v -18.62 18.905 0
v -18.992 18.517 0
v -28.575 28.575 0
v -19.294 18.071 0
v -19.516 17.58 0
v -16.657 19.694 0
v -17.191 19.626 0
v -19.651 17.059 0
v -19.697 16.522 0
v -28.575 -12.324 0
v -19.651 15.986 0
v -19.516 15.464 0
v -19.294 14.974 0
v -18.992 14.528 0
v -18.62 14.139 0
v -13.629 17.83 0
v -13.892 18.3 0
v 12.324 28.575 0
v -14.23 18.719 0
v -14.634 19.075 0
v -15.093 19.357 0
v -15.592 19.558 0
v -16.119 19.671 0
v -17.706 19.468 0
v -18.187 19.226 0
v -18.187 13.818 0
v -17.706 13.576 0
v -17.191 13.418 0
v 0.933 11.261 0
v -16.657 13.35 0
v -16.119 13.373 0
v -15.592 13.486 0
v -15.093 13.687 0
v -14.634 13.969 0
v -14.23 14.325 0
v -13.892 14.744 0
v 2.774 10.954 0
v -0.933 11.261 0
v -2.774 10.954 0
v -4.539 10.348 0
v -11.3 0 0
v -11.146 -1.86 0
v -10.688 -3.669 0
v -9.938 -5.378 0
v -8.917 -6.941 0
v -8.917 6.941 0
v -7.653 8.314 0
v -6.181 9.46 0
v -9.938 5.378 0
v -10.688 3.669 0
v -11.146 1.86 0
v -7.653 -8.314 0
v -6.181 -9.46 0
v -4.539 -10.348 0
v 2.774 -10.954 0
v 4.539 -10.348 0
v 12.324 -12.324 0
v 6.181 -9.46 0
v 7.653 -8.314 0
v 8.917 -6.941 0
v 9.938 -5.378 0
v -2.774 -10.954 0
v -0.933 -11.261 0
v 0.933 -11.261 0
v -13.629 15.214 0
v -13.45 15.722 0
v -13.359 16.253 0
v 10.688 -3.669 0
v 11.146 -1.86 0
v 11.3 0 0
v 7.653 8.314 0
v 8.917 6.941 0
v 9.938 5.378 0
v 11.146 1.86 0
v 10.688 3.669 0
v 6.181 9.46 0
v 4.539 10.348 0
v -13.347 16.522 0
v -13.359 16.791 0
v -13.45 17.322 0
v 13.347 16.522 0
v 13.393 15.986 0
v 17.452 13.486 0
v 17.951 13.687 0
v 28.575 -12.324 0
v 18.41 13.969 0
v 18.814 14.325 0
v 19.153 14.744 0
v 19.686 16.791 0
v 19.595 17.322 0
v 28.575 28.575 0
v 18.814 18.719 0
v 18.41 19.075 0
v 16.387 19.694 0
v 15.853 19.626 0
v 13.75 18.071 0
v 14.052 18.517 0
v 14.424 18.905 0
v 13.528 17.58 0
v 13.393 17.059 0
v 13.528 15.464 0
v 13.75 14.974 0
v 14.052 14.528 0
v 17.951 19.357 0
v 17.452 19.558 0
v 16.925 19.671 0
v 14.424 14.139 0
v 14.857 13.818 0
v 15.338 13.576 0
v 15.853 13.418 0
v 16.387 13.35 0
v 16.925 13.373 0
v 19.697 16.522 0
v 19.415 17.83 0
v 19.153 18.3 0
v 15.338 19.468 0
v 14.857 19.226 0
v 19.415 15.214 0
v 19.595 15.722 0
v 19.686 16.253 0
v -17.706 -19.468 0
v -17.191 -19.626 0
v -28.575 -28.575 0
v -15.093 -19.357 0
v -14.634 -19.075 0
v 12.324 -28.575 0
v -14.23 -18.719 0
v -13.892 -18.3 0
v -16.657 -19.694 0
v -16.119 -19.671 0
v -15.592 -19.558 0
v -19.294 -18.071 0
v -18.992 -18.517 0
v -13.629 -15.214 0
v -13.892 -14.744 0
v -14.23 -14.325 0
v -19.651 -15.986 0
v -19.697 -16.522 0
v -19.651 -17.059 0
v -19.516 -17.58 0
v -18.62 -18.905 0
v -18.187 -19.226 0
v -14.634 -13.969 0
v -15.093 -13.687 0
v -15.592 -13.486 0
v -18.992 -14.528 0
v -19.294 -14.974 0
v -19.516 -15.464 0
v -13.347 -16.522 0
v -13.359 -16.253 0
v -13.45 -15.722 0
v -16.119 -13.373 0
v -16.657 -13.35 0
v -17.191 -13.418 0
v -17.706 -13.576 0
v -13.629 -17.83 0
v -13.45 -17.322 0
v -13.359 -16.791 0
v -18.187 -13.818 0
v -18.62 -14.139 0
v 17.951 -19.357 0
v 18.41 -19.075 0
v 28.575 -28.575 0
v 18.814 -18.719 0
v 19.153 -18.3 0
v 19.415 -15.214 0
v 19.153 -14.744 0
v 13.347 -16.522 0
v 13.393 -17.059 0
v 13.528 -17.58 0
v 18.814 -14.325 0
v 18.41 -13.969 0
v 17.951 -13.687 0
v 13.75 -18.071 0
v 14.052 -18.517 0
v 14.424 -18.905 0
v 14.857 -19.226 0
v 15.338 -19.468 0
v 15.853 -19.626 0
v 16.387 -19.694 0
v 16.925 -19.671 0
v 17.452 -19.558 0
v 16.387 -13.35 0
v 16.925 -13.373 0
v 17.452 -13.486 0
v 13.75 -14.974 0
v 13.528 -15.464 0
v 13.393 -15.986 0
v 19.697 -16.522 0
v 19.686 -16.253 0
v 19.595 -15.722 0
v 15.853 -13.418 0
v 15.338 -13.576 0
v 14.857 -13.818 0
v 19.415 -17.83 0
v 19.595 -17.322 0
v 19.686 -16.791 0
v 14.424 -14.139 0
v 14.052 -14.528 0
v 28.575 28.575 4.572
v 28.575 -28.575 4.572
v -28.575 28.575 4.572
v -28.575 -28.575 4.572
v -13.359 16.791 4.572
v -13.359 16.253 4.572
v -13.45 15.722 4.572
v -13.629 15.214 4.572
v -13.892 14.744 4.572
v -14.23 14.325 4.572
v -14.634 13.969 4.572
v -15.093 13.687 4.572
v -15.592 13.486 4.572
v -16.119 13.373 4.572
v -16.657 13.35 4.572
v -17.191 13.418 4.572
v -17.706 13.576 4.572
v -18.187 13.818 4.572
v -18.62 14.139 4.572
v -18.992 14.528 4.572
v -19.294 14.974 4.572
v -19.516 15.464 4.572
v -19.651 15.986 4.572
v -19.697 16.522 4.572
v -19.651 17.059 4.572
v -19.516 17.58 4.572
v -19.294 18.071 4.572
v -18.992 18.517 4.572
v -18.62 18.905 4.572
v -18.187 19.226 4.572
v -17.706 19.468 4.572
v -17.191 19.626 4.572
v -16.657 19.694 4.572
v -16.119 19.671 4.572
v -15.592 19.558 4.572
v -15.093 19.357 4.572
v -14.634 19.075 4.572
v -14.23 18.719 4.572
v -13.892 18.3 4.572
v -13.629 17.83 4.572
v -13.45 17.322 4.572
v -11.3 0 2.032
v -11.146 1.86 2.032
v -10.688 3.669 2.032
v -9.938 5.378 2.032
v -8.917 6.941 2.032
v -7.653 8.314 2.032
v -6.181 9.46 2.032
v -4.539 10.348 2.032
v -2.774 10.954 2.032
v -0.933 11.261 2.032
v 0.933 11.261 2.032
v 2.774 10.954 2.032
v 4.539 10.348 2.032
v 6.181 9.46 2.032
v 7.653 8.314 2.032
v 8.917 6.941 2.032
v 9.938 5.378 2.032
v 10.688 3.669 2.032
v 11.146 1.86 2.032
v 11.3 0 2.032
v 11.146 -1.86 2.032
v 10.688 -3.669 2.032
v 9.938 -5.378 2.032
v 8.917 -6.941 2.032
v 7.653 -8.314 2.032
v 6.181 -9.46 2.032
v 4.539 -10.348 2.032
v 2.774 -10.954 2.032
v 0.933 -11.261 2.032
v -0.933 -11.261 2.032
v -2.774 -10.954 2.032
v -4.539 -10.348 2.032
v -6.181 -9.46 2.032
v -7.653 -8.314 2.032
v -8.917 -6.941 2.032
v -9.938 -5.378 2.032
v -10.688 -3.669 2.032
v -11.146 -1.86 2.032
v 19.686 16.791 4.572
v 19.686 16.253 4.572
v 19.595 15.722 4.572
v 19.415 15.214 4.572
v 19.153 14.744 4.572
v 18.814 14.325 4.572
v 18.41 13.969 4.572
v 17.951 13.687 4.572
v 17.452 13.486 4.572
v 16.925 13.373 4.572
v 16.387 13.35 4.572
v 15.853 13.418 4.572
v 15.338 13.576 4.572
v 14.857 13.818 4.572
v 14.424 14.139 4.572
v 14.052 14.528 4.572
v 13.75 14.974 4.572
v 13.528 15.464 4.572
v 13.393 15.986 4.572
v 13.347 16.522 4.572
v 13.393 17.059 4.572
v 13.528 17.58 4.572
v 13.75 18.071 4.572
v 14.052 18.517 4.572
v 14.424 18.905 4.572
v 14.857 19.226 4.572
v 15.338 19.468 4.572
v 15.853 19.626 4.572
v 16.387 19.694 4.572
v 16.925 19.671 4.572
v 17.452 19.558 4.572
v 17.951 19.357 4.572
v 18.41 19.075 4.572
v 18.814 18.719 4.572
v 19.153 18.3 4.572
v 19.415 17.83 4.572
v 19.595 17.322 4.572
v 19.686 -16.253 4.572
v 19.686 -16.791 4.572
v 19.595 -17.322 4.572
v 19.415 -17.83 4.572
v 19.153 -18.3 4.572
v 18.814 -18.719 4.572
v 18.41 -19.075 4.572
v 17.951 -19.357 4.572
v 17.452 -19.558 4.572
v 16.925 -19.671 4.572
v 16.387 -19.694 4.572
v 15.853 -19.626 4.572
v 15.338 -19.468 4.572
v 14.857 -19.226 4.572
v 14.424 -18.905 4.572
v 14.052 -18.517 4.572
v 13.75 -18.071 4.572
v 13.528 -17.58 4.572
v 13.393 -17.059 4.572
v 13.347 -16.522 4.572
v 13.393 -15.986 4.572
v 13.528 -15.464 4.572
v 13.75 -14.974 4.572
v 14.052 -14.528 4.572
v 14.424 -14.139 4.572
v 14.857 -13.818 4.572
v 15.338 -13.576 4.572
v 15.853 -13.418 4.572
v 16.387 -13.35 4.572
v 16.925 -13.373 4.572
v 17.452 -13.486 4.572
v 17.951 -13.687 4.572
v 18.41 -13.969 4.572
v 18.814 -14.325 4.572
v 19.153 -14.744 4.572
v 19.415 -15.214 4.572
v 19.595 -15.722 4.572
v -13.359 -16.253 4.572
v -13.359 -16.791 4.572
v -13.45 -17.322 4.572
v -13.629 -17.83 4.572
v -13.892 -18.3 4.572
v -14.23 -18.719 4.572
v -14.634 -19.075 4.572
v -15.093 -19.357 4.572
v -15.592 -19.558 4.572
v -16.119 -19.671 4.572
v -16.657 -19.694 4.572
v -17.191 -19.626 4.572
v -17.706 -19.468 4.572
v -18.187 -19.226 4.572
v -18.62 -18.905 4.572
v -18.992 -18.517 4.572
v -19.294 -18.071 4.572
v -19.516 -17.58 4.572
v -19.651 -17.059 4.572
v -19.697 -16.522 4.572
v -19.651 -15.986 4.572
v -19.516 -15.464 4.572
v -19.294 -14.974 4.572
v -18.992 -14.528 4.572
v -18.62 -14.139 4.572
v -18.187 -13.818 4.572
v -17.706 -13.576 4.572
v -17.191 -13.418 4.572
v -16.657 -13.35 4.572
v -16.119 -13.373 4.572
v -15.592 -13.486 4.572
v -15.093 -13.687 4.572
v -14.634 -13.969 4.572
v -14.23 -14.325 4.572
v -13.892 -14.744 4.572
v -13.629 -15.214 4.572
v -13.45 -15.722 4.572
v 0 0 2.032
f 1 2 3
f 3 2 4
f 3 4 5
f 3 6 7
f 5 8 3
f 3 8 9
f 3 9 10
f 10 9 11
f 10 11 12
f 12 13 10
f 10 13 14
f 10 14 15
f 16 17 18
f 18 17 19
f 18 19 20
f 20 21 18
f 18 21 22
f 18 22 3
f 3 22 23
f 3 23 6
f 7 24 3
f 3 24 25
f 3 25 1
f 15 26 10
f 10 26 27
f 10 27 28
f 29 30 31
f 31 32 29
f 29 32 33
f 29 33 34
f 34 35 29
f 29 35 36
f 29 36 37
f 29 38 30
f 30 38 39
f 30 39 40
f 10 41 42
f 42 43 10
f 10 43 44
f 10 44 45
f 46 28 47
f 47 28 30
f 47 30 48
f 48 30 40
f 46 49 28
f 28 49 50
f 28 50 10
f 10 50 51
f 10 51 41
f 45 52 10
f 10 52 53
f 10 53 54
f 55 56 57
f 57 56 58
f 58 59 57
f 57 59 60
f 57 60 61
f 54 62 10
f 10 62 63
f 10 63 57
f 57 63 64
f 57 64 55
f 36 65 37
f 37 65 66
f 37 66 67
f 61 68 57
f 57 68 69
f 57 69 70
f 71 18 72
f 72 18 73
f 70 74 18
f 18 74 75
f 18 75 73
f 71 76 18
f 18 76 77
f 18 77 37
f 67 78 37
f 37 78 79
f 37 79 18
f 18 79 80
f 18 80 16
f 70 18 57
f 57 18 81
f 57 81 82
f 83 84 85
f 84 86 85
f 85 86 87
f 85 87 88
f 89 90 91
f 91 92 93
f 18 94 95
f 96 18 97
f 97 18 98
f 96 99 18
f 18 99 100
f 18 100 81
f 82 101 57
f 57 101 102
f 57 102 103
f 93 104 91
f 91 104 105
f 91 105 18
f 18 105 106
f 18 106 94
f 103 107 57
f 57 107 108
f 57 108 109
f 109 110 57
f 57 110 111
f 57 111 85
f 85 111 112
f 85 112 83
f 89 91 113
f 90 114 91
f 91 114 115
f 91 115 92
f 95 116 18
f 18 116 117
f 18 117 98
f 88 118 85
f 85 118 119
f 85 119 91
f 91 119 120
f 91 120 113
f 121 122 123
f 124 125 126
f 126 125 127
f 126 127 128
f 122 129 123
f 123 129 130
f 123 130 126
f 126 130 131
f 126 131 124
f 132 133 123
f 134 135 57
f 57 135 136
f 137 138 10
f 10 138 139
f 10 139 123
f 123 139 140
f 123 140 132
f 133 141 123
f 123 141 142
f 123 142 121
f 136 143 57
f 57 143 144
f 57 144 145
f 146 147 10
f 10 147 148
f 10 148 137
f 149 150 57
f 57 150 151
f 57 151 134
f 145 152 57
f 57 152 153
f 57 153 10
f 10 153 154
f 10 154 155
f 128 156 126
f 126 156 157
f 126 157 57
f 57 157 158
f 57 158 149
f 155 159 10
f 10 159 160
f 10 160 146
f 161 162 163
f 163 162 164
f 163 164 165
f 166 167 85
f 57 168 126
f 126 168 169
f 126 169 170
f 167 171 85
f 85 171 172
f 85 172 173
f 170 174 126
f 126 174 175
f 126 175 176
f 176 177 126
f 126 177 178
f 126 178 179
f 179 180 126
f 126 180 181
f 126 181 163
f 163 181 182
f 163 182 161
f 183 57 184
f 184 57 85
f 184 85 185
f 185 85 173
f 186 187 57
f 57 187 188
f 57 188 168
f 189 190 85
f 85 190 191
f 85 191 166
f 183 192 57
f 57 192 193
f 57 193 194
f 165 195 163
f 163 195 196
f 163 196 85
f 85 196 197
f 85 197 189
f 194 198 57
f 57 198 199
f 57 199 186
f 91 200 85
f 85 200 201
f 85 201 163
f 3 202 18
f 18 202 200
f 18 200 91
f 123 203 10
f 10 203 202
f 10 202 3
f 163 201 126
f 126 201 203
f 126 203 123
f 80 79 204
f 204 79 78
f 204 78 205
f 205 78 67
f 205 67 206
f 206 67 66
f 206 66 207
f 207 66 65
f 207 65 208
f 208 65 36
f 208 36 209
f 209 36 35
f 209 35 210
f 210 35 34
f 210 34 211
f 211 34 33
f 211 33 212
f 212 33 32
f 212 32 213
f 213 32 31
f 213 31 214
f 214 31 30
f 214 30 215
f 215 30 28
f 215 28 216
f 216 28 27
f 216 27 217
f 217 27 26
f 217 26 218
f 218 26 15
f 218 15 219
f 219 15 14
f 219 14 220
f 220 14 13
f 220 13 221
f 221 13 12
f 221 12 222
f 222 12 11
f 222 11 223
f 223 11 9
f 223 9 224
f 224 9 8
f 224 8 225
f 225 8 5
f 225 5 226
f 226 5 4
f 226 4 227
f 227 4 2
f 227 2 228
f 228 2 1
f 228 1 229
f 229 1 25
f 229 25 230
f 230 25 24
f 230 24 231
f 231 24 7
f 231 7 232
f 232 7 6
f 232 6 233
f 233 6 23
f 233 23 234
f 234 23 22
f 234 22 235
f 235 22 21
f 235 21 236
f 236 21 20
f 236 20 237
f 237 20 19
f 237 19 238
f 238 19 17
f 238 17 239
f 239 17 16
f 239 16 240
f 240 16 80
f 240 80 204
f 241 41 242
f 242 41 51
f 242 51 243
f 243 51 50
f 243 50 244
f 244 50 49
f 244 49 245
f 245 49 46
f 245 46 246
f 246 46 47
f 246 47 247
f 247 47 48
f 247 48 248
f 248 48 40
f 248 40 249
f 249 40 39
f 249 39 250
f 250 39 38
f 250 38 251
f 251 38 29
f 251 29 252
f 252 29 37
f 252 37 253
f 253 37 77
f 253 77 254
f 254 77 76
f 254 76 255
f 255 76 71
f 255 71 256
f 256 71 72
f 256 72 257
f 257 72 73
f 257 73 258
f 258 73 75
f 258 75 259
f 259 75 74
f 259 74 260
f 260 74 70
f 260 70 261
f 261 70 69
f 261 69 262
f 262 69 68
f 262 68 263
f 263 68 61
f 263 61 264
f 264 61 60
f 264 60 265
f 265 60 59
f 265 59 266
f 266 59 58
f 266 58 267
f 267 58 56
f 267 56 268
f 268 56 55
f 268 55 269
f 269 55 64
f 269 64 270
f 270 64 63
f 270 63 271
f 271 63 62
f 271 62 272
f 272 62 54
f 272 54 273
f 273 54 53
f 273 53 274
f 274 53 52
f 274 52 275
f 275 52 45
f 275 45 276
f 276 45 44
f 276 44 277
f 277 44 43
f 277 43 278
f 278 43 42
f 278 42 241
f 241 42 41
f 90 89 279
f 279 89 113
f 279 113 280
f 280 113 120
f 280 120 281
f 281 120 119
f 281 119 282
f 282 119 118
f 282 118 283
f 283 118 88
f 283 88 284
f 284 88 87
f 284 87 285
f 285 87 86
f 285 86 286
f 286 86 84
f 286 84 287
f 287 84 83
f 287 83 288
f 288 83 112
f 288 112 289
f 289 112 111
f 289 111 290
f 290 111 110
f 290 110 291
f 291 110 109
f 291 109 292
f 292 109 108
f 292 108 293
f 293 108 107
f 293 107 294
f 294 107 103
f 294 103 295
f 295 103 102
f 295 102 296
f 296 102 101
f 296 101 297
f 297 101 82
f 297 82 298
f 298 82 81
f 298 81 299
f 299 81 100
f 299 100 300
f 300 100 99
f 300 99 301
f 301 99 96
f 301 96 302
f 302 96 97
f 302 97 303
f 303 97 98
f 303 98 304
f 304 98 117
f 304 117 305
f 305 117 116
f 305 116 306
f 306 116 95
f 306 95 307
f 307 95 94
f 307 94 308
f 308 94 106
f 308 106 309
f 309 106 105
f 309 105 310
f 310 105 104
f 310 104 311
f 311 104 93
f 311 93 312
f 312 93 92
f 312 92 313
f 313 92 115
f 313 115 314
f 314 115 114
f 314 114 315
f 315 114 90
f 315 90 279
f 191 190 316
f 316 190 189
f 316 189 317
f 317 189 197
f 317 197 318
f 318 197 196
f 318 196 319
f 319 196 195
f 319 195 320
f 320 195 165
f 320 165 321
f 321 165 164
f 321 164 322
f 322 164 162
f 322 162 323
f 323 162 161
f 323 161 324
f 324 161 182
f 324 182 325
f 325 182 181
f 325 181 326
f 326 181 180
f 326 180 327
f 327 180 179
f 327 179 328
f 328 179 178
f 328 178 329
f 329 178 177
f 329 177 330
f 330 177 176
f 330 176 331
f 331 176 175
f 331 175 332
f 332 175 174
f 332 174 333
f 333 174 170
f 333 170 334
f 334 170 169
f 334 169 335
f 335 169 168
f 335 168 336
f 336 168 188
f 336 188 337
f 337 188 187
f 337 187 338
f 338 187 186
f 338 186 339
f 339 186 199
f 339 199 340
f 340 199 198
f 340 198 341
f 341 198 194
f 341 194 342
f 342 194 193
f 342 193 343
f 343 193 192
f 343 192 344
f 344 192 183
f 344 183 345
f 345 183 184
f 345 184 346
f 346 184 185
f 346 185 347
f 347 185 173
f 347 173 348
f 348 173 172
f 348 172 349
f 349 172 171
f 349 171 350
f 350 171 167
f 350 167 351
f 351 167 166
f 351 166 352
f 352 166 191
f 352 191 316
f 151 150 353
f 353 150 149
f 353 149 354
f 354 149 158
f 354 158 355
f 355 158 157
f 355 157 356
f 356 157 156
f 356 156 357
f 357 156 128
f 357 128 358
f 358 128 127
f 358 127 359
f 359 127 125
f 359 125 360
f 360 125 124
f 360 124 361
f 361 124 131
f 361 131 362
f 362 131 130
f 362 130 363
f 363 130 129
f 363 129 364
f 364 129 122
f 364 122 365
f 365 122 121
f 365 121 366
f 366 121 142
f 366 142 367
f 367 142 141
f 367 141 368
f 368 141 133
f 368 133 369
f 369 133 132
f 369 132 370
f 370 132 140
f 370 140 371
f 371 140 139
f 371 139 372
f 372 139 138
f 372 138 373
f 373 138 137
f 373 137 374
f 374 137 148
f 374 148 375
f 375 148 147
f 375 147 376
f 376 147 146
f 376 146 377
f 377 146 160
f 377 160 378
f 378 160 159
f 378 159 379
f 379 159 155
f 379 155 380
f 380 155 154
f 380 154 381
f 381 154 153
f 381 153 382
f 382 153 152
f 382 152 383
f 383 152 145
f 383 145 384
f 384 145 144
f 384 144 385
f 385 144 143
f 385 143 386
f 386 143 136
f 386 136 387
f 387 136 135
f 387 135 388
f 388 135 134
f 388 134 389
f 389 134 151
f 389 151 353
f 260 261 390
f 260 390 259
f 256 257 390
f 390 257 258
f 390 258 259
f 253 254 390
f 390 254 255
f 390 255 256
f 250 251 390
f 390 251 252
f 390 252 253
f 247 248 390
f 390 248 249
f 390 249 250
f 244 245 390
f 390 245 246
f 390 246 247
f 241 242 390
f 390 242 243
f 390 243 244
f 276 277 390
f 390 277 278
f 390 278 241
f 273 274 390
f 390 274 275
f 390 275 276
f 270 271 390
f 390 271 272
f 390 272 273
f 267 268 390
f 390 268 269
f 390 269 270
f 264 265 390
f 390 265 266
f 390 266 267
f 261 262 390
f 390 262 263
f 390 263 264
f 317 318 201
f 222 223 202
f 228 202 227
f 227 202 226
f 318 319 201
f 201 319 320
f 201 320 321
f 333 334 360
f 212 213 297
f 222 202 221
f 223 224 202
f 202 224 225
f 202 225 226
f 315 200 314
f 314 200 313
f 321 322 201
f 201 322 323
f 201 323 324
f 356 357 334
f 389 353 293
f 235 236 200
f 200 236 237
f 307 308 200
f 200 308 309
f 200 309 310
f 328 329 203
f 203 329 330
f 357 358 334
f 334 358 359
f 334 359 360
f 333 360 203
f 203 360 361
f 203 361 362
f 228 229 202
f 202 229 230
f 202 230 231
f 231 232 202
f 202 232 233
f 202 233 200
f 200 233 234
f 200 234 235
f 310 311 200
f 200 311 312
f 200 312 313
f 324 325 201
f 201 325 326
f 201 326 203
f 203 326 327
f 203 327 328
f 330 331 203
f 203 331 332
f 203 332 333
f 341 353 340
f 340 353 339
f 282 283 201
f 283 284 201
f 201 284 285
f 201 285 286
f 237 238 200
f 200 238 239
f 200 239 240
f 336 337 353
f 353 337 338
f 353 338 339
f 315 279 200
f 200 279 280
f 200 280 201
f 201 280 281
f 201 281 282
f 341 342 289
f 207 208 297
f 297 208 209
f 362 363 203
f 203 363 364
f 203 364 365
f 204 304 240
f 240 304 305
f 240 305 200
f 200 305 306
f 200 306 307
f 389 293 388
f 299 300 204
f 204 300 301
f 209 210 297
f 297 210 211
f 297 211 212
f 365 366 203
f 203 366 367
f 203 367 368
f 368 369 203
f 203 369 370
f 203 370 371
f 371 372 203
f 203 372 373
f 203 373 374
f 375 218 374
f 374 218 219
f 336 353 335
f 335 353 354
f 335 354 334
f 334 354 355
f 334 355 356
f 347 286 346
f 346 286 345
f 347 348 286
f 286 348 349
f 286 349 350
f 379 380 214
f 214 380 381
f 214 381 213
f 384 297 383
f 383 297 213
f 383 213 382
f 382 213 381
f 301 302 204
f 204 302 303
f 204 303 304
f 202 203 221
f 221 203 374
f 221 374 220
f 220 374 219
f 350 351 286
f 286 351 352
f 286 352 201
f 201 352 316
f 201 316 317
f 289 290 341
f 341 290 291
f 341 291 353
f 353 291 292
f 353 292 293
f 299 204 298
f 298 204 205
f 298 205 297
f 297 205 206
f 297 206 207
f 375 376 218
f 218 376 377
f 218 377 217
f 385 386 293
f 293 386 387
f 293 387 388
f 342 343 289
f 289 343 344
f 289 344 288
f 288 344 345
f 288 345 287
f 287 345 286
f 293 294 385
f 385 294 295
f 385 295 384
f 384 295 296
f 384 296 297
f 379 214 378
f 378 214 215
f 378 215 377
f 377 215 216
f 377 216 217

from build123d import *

# Parameters (mm, degrees)
SKETCH1_W           = 57.15
SKETCH1_H           = 57.15
SKETCH1_R           = 3.175
SKETCH1_R_2         = 11.3
BOSS_EXTRUDE1_DEPTH = 2.032
BOSS_EXTRUDE2_START = 2.032
SKETCH1_2_W         = 57.15
SKETCH1_2_H         = 57.15
SKETCH1_2_R         = 11.3
SKETCH1_2_R_2       = 3.175
BOSS_EXTRUDE2_DEPTH = 2.54


with BuildPart() as part:
    # Sketch1 → Boss-Extrude1 (new body)
    with BuildSketch(Plane.XY):
        Rectangle(SKETCH1_W, SKETCH1_H)
        with Locations((-16.522101848, 16.522101848)):
            Circle(SKETCH1_R, mode=Mode.SUBTRACT)
        with Locations((16.522101848, 16.522101848)):
            Circle(SKETCH1_R, mode=Mode.SUBTRACT)
        with Locations((16.522101848, -16.522101848)):
            Circle(SKETCH1_R, mode=Mode.SUBTRACT)
        with Locations((-16.522101848, -16.522101848)):
            Circle(SKETCH1_R, mode=Mode.SUBTRACT)
        Circle(SKETCH1_R_2, mode=Mode.SUBTRACT)
    extrude(amount=BOSS_EXTRUDE1_DEPTH)

    # Sketch1<2> → Boss-Extrude2 (add)
    # profile 1 of 2: a face of its own
    with BuildSketch(Plane.XY.offset(BOSS_EXTRUDE2_START)):
        Rectangle(SKETCH1_2_W, SKETCH1_2_H)
        Circle(SKETCH1_2_R, mode=Mode.SUBTRACT)
        with Locations(Location((-16.522101848, -16.522101848, 0), (0, 0, 180))):
            Circle(SKETCH1_2_R_2, mode=Mode.SUBTRACT)
        with Locations(Location((16.522101848, -16.522101848, 0), (0, 0, 180))):
            Circle(SKETCH1_2_R_2, mode=Mode.SUBTRACT)
        with Locations(Location((16.522101848, 16.522101848, 0), (0, 0, 180))):
            Circle(SKETCH1_2_R_2, mode=Mode.SUBTRACT)
        with Locations(Location((-16.522101848, 16.522101848, 0), (0, 0, 180))):
            Circle(SKETCH1_2_R_2, mode=Mode.SUBTRACT)
    # profile 2 of 2: a face of its own
    with BuildSketch(Plane.XY.offset(BOSS_EXTRUDE2_START)):
        Circle(SKETCH1_2_R)
    extrude(amount=BOSS_EXTRUDE2_DEPTH)


solid = part.part
